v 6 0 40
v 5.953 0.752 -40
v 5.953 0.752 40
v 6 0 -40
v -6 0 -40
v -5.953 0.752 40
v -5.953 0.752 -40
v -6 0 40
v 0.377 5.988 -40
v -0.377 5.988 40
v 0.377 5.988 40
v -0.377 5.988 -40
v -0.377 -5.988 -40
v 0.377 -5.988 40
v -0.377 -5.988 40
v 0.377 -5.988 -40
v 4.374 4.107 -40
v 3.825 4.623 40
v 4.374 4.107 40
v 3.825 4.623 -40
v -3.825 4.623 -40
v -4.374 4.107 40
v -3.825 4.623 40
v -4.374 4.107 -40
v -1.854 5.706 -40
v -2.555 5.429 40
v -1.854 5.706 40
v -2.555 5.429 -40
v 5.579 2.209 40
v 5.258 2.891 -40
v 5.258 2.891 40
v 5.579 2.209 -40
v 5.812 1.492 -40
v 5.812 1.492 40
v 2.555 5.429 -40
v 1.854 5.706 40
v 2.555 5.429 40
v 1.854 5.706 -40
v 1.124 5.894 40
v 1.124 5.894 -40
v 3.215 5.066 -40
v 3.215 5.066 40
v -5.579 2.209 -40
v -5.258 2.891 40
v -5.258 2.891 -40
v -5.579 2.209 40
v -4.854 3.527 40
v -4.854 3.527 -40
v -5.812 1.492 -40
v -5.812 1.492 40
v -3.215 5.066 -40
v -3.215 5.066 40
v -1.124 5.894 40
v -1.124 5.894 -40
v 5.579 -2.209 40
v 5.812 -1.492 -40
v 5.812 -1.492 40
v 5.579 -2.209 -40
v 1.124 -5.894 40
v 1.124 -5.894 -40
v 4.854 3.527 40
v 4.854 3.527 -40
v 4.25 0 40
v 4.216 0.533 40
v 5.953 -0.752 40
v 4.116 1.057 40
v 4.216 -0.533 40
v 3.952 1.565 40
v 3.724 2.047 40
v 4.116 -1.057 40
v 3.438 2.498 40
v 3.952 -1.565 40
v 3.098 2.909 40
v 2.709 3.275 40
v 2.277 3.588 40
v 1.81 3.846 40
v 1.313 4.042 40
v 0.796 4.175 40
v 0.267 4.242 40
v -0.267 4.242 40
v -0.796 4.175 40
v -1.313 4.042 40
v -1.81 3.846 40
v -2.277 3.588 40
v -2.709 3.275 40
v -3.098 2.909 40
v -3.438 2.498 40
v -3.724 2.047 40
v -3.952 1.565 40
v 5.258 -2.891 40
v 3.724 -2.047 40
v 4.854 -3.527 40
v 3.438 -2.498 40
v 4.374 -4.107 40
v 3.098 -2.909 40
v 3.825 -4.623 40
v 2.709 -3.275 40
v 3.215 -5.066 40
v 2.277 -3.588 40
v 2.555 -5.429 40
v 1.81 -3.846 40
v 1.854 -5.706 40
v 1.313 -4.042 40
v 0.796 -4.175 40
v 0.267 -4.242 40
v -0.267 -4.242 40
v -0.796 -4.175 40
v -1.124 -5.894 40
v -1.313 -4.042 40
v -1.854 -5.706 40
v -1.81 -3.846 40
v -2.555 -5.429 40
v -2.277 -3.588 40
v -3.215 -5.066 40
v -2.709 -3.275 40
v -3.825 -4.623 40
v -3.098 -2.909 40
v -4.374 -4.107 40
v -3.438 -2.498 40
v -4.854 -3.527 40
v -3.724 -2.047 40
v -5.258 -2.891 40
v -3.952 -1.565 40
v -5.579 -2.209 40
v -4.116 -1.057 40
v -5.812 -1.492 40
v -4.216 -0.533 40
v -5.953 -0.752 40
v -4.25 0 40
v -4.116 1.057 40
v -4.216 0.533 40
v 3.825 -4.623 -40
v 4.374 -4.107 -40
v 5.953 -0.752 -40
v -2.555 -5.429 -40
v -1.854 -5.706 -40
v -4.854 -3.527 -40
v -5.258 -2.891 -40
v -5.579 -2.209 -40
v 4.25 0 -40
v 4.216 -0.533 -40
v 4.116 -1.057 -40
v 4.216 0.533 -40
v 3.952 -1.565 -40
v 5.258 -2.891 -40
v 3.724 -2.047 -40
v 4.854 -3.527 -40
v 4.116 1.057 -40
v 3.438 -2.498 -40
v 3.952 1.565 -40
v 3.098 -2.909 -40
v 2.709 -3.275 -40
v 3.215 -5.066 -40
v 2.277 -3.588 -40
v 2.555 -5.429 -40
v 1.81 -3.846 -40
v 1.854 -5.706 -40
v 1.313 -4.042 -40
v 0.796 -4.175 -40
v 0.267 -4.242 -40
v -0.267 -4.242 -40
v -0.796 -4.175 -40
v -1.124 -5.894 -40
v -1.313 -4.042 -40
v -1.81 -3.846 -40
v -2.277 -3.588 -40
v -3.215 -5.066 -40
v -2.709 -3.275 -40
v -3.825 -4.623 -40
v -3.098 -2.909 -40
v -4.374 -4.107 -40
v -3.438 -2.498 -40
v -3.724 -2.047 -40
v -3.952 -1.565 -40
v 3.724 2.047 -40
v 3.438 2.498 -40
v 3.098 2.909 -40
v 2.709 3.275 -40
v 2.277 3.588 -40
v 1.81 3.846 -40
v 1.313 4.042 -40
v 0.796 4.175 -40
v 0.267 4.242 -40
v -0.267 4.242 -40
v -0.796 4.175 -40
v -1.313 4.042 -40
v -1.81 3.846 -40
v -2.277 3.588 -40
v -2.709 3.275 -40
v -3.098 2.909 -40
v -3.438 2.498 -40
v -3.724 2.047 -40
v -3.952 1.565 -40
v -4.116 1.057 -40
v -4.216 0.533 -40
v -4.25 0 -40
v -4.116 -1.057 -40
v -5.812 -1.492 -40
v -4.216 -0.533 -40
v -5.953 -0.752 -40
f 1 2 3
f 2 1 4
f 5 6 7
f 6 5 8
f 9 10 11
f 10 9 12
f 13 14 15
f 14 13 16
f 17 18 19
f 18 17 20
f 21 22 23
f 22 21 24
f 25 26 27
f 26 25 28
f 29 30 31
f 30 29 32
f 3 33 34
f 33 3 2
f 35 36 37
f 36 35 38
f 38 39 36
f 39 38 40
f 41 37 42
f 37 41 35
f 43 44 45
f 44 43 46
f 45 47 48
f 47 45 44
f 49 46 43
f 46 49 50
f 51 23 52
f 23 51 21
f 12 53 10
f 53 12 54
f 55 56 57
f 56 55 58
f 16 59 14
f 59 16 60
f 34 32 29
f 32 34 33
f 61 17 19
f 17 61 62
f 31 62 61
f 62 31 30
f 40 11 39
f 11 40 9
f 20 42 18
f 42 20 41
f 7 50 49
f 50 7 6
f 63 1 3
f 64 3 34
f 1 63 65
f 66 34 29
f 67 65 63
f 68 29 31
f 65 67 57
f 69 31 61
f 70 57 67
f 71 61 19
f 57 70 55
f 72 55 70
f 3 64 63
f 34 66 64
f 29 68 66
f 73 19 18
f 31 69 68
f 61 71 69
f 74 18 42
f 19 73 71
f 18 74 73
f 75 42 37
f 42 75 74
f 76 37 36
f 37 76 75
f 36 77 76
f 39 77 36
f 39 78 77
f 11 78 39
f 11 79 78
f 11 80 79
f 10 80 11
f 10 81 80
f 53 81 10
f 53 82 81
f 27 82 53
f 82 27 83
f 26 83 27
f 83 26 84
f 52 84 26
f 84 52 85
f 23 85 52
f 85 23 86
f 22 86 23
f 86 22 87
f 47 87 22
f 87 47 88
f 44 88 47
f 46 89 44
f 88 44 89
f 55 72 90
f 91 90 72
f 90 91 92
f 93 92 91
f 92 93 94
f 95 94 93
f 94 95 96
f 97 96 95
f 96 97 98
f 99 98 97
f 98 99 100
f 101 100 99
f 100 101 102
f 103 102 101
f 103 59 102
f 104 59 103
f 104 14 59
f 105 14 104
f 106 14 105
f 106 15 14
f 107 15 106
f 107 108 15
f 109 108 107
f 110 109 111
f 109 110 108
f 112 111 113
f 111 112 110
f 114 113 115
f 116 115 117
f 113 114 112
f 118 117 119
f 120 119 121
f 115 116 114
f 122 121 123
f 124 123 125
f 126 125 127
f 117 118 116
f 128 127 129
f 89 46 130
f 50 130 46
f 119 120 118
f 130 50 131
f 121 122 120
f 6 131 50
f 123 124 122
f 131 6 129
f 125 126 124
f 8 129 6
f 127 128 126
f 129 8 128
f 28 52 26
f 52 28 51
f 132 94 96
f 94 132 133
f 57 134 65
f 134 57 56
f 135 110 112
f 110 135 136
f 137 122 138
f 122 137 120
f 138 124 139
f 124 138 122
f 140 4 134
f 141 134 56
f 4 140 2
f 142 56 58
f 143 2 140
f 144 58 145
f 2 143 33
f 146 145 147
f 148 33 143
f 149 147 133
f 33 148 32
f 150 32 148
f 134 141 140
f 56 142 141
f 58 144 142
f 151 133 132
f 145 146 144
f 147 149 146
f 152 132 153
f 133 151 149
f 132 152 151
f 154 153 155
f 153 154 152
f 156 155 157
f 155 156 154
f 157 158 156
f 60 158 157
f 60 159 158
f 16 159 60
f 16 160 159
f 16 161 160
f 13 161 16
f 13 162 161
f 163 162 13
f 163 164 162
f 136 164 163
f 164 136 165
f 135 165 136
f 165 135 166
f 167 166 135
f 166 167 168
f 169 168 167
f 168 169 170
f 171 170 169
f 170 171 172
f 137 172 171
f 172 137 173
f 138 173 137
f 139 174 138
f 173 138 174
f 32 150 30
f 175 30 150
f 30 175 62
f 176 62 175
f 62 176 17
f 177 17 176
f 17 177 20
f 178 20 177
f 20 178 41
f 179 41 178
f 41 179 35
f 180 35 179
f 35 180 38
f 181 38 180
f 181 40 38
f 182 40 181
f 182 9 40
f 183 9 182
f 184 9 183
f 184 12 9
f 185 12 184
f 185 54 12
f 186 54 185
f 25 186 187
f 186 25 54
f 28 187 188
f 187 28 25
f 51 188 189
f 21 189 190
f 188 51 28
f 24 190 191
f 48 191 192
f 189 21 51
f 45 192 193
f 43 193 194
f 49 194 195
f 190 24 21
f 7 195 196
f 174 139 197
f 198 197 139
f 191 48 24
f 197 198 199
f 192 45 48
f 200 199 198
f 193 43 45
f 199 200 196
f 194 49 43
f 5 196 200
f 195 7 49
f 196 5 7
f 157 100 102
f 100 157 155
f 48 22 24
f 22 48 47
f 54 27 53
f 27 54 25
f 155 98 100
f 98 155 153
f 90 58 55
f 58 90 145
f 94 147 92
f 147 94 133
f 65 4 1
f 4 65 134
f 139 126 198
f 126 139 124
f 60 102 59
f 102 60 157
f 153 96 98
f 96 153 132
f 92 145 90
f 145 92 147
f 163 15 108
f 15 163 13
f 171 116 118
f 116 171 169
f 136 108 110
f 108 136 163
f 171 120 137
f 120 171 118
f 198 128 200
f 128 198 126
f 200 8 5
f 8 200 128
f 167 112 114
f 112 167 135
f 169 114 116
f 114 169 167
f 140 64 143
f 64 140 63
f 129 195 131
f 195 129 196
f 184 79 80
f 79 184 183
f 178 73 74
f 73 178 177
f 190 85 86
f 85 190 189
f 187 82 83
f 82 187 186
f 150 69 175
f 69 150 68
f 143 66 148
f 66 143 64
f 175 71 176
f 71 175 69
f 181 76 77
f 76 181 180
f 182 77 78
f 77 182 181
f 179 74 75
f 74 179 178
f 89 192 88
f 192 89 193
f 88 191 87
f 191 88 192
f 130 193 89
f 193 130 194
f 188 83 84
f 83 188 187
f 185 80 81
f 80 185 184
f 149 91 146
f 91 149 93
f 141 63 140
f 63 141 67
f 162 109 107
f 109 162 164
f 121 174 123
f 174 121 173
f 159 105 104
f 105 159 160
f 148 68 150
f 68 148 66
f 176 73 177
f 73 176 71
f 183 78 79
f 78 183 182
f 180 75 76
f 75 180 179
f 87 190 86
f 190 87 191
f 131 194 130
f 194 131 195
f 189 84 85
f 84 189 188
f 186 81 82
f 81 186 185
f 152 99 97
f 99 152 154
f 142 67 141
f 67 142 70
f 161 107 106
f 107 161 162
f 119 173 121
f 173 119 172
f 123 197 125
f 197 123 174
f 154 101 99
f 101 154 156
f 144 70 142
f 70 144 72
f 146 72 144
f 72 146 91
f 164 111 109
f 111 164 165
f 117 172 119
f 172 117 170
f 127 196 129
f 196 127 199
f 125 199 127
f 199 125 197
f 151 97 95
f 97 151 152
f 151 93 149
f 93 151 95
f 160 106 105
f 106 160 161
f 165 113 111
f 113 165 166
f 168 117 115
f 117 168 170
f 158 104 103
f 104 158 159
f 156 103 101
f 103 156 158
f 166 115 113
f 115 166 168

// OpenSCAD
$fn = 50;


difference() {
	union() {
		translate(v = [0, 0, -40.0000000000]) {
			cylinder(h = 80, r = 6.0000000000);
		}
	}
	union() {
		translate(v = [0, 0, -100.0000000000]) {
			cylinder(h = 200, r = 4.2500000000);
		}
	}
}
